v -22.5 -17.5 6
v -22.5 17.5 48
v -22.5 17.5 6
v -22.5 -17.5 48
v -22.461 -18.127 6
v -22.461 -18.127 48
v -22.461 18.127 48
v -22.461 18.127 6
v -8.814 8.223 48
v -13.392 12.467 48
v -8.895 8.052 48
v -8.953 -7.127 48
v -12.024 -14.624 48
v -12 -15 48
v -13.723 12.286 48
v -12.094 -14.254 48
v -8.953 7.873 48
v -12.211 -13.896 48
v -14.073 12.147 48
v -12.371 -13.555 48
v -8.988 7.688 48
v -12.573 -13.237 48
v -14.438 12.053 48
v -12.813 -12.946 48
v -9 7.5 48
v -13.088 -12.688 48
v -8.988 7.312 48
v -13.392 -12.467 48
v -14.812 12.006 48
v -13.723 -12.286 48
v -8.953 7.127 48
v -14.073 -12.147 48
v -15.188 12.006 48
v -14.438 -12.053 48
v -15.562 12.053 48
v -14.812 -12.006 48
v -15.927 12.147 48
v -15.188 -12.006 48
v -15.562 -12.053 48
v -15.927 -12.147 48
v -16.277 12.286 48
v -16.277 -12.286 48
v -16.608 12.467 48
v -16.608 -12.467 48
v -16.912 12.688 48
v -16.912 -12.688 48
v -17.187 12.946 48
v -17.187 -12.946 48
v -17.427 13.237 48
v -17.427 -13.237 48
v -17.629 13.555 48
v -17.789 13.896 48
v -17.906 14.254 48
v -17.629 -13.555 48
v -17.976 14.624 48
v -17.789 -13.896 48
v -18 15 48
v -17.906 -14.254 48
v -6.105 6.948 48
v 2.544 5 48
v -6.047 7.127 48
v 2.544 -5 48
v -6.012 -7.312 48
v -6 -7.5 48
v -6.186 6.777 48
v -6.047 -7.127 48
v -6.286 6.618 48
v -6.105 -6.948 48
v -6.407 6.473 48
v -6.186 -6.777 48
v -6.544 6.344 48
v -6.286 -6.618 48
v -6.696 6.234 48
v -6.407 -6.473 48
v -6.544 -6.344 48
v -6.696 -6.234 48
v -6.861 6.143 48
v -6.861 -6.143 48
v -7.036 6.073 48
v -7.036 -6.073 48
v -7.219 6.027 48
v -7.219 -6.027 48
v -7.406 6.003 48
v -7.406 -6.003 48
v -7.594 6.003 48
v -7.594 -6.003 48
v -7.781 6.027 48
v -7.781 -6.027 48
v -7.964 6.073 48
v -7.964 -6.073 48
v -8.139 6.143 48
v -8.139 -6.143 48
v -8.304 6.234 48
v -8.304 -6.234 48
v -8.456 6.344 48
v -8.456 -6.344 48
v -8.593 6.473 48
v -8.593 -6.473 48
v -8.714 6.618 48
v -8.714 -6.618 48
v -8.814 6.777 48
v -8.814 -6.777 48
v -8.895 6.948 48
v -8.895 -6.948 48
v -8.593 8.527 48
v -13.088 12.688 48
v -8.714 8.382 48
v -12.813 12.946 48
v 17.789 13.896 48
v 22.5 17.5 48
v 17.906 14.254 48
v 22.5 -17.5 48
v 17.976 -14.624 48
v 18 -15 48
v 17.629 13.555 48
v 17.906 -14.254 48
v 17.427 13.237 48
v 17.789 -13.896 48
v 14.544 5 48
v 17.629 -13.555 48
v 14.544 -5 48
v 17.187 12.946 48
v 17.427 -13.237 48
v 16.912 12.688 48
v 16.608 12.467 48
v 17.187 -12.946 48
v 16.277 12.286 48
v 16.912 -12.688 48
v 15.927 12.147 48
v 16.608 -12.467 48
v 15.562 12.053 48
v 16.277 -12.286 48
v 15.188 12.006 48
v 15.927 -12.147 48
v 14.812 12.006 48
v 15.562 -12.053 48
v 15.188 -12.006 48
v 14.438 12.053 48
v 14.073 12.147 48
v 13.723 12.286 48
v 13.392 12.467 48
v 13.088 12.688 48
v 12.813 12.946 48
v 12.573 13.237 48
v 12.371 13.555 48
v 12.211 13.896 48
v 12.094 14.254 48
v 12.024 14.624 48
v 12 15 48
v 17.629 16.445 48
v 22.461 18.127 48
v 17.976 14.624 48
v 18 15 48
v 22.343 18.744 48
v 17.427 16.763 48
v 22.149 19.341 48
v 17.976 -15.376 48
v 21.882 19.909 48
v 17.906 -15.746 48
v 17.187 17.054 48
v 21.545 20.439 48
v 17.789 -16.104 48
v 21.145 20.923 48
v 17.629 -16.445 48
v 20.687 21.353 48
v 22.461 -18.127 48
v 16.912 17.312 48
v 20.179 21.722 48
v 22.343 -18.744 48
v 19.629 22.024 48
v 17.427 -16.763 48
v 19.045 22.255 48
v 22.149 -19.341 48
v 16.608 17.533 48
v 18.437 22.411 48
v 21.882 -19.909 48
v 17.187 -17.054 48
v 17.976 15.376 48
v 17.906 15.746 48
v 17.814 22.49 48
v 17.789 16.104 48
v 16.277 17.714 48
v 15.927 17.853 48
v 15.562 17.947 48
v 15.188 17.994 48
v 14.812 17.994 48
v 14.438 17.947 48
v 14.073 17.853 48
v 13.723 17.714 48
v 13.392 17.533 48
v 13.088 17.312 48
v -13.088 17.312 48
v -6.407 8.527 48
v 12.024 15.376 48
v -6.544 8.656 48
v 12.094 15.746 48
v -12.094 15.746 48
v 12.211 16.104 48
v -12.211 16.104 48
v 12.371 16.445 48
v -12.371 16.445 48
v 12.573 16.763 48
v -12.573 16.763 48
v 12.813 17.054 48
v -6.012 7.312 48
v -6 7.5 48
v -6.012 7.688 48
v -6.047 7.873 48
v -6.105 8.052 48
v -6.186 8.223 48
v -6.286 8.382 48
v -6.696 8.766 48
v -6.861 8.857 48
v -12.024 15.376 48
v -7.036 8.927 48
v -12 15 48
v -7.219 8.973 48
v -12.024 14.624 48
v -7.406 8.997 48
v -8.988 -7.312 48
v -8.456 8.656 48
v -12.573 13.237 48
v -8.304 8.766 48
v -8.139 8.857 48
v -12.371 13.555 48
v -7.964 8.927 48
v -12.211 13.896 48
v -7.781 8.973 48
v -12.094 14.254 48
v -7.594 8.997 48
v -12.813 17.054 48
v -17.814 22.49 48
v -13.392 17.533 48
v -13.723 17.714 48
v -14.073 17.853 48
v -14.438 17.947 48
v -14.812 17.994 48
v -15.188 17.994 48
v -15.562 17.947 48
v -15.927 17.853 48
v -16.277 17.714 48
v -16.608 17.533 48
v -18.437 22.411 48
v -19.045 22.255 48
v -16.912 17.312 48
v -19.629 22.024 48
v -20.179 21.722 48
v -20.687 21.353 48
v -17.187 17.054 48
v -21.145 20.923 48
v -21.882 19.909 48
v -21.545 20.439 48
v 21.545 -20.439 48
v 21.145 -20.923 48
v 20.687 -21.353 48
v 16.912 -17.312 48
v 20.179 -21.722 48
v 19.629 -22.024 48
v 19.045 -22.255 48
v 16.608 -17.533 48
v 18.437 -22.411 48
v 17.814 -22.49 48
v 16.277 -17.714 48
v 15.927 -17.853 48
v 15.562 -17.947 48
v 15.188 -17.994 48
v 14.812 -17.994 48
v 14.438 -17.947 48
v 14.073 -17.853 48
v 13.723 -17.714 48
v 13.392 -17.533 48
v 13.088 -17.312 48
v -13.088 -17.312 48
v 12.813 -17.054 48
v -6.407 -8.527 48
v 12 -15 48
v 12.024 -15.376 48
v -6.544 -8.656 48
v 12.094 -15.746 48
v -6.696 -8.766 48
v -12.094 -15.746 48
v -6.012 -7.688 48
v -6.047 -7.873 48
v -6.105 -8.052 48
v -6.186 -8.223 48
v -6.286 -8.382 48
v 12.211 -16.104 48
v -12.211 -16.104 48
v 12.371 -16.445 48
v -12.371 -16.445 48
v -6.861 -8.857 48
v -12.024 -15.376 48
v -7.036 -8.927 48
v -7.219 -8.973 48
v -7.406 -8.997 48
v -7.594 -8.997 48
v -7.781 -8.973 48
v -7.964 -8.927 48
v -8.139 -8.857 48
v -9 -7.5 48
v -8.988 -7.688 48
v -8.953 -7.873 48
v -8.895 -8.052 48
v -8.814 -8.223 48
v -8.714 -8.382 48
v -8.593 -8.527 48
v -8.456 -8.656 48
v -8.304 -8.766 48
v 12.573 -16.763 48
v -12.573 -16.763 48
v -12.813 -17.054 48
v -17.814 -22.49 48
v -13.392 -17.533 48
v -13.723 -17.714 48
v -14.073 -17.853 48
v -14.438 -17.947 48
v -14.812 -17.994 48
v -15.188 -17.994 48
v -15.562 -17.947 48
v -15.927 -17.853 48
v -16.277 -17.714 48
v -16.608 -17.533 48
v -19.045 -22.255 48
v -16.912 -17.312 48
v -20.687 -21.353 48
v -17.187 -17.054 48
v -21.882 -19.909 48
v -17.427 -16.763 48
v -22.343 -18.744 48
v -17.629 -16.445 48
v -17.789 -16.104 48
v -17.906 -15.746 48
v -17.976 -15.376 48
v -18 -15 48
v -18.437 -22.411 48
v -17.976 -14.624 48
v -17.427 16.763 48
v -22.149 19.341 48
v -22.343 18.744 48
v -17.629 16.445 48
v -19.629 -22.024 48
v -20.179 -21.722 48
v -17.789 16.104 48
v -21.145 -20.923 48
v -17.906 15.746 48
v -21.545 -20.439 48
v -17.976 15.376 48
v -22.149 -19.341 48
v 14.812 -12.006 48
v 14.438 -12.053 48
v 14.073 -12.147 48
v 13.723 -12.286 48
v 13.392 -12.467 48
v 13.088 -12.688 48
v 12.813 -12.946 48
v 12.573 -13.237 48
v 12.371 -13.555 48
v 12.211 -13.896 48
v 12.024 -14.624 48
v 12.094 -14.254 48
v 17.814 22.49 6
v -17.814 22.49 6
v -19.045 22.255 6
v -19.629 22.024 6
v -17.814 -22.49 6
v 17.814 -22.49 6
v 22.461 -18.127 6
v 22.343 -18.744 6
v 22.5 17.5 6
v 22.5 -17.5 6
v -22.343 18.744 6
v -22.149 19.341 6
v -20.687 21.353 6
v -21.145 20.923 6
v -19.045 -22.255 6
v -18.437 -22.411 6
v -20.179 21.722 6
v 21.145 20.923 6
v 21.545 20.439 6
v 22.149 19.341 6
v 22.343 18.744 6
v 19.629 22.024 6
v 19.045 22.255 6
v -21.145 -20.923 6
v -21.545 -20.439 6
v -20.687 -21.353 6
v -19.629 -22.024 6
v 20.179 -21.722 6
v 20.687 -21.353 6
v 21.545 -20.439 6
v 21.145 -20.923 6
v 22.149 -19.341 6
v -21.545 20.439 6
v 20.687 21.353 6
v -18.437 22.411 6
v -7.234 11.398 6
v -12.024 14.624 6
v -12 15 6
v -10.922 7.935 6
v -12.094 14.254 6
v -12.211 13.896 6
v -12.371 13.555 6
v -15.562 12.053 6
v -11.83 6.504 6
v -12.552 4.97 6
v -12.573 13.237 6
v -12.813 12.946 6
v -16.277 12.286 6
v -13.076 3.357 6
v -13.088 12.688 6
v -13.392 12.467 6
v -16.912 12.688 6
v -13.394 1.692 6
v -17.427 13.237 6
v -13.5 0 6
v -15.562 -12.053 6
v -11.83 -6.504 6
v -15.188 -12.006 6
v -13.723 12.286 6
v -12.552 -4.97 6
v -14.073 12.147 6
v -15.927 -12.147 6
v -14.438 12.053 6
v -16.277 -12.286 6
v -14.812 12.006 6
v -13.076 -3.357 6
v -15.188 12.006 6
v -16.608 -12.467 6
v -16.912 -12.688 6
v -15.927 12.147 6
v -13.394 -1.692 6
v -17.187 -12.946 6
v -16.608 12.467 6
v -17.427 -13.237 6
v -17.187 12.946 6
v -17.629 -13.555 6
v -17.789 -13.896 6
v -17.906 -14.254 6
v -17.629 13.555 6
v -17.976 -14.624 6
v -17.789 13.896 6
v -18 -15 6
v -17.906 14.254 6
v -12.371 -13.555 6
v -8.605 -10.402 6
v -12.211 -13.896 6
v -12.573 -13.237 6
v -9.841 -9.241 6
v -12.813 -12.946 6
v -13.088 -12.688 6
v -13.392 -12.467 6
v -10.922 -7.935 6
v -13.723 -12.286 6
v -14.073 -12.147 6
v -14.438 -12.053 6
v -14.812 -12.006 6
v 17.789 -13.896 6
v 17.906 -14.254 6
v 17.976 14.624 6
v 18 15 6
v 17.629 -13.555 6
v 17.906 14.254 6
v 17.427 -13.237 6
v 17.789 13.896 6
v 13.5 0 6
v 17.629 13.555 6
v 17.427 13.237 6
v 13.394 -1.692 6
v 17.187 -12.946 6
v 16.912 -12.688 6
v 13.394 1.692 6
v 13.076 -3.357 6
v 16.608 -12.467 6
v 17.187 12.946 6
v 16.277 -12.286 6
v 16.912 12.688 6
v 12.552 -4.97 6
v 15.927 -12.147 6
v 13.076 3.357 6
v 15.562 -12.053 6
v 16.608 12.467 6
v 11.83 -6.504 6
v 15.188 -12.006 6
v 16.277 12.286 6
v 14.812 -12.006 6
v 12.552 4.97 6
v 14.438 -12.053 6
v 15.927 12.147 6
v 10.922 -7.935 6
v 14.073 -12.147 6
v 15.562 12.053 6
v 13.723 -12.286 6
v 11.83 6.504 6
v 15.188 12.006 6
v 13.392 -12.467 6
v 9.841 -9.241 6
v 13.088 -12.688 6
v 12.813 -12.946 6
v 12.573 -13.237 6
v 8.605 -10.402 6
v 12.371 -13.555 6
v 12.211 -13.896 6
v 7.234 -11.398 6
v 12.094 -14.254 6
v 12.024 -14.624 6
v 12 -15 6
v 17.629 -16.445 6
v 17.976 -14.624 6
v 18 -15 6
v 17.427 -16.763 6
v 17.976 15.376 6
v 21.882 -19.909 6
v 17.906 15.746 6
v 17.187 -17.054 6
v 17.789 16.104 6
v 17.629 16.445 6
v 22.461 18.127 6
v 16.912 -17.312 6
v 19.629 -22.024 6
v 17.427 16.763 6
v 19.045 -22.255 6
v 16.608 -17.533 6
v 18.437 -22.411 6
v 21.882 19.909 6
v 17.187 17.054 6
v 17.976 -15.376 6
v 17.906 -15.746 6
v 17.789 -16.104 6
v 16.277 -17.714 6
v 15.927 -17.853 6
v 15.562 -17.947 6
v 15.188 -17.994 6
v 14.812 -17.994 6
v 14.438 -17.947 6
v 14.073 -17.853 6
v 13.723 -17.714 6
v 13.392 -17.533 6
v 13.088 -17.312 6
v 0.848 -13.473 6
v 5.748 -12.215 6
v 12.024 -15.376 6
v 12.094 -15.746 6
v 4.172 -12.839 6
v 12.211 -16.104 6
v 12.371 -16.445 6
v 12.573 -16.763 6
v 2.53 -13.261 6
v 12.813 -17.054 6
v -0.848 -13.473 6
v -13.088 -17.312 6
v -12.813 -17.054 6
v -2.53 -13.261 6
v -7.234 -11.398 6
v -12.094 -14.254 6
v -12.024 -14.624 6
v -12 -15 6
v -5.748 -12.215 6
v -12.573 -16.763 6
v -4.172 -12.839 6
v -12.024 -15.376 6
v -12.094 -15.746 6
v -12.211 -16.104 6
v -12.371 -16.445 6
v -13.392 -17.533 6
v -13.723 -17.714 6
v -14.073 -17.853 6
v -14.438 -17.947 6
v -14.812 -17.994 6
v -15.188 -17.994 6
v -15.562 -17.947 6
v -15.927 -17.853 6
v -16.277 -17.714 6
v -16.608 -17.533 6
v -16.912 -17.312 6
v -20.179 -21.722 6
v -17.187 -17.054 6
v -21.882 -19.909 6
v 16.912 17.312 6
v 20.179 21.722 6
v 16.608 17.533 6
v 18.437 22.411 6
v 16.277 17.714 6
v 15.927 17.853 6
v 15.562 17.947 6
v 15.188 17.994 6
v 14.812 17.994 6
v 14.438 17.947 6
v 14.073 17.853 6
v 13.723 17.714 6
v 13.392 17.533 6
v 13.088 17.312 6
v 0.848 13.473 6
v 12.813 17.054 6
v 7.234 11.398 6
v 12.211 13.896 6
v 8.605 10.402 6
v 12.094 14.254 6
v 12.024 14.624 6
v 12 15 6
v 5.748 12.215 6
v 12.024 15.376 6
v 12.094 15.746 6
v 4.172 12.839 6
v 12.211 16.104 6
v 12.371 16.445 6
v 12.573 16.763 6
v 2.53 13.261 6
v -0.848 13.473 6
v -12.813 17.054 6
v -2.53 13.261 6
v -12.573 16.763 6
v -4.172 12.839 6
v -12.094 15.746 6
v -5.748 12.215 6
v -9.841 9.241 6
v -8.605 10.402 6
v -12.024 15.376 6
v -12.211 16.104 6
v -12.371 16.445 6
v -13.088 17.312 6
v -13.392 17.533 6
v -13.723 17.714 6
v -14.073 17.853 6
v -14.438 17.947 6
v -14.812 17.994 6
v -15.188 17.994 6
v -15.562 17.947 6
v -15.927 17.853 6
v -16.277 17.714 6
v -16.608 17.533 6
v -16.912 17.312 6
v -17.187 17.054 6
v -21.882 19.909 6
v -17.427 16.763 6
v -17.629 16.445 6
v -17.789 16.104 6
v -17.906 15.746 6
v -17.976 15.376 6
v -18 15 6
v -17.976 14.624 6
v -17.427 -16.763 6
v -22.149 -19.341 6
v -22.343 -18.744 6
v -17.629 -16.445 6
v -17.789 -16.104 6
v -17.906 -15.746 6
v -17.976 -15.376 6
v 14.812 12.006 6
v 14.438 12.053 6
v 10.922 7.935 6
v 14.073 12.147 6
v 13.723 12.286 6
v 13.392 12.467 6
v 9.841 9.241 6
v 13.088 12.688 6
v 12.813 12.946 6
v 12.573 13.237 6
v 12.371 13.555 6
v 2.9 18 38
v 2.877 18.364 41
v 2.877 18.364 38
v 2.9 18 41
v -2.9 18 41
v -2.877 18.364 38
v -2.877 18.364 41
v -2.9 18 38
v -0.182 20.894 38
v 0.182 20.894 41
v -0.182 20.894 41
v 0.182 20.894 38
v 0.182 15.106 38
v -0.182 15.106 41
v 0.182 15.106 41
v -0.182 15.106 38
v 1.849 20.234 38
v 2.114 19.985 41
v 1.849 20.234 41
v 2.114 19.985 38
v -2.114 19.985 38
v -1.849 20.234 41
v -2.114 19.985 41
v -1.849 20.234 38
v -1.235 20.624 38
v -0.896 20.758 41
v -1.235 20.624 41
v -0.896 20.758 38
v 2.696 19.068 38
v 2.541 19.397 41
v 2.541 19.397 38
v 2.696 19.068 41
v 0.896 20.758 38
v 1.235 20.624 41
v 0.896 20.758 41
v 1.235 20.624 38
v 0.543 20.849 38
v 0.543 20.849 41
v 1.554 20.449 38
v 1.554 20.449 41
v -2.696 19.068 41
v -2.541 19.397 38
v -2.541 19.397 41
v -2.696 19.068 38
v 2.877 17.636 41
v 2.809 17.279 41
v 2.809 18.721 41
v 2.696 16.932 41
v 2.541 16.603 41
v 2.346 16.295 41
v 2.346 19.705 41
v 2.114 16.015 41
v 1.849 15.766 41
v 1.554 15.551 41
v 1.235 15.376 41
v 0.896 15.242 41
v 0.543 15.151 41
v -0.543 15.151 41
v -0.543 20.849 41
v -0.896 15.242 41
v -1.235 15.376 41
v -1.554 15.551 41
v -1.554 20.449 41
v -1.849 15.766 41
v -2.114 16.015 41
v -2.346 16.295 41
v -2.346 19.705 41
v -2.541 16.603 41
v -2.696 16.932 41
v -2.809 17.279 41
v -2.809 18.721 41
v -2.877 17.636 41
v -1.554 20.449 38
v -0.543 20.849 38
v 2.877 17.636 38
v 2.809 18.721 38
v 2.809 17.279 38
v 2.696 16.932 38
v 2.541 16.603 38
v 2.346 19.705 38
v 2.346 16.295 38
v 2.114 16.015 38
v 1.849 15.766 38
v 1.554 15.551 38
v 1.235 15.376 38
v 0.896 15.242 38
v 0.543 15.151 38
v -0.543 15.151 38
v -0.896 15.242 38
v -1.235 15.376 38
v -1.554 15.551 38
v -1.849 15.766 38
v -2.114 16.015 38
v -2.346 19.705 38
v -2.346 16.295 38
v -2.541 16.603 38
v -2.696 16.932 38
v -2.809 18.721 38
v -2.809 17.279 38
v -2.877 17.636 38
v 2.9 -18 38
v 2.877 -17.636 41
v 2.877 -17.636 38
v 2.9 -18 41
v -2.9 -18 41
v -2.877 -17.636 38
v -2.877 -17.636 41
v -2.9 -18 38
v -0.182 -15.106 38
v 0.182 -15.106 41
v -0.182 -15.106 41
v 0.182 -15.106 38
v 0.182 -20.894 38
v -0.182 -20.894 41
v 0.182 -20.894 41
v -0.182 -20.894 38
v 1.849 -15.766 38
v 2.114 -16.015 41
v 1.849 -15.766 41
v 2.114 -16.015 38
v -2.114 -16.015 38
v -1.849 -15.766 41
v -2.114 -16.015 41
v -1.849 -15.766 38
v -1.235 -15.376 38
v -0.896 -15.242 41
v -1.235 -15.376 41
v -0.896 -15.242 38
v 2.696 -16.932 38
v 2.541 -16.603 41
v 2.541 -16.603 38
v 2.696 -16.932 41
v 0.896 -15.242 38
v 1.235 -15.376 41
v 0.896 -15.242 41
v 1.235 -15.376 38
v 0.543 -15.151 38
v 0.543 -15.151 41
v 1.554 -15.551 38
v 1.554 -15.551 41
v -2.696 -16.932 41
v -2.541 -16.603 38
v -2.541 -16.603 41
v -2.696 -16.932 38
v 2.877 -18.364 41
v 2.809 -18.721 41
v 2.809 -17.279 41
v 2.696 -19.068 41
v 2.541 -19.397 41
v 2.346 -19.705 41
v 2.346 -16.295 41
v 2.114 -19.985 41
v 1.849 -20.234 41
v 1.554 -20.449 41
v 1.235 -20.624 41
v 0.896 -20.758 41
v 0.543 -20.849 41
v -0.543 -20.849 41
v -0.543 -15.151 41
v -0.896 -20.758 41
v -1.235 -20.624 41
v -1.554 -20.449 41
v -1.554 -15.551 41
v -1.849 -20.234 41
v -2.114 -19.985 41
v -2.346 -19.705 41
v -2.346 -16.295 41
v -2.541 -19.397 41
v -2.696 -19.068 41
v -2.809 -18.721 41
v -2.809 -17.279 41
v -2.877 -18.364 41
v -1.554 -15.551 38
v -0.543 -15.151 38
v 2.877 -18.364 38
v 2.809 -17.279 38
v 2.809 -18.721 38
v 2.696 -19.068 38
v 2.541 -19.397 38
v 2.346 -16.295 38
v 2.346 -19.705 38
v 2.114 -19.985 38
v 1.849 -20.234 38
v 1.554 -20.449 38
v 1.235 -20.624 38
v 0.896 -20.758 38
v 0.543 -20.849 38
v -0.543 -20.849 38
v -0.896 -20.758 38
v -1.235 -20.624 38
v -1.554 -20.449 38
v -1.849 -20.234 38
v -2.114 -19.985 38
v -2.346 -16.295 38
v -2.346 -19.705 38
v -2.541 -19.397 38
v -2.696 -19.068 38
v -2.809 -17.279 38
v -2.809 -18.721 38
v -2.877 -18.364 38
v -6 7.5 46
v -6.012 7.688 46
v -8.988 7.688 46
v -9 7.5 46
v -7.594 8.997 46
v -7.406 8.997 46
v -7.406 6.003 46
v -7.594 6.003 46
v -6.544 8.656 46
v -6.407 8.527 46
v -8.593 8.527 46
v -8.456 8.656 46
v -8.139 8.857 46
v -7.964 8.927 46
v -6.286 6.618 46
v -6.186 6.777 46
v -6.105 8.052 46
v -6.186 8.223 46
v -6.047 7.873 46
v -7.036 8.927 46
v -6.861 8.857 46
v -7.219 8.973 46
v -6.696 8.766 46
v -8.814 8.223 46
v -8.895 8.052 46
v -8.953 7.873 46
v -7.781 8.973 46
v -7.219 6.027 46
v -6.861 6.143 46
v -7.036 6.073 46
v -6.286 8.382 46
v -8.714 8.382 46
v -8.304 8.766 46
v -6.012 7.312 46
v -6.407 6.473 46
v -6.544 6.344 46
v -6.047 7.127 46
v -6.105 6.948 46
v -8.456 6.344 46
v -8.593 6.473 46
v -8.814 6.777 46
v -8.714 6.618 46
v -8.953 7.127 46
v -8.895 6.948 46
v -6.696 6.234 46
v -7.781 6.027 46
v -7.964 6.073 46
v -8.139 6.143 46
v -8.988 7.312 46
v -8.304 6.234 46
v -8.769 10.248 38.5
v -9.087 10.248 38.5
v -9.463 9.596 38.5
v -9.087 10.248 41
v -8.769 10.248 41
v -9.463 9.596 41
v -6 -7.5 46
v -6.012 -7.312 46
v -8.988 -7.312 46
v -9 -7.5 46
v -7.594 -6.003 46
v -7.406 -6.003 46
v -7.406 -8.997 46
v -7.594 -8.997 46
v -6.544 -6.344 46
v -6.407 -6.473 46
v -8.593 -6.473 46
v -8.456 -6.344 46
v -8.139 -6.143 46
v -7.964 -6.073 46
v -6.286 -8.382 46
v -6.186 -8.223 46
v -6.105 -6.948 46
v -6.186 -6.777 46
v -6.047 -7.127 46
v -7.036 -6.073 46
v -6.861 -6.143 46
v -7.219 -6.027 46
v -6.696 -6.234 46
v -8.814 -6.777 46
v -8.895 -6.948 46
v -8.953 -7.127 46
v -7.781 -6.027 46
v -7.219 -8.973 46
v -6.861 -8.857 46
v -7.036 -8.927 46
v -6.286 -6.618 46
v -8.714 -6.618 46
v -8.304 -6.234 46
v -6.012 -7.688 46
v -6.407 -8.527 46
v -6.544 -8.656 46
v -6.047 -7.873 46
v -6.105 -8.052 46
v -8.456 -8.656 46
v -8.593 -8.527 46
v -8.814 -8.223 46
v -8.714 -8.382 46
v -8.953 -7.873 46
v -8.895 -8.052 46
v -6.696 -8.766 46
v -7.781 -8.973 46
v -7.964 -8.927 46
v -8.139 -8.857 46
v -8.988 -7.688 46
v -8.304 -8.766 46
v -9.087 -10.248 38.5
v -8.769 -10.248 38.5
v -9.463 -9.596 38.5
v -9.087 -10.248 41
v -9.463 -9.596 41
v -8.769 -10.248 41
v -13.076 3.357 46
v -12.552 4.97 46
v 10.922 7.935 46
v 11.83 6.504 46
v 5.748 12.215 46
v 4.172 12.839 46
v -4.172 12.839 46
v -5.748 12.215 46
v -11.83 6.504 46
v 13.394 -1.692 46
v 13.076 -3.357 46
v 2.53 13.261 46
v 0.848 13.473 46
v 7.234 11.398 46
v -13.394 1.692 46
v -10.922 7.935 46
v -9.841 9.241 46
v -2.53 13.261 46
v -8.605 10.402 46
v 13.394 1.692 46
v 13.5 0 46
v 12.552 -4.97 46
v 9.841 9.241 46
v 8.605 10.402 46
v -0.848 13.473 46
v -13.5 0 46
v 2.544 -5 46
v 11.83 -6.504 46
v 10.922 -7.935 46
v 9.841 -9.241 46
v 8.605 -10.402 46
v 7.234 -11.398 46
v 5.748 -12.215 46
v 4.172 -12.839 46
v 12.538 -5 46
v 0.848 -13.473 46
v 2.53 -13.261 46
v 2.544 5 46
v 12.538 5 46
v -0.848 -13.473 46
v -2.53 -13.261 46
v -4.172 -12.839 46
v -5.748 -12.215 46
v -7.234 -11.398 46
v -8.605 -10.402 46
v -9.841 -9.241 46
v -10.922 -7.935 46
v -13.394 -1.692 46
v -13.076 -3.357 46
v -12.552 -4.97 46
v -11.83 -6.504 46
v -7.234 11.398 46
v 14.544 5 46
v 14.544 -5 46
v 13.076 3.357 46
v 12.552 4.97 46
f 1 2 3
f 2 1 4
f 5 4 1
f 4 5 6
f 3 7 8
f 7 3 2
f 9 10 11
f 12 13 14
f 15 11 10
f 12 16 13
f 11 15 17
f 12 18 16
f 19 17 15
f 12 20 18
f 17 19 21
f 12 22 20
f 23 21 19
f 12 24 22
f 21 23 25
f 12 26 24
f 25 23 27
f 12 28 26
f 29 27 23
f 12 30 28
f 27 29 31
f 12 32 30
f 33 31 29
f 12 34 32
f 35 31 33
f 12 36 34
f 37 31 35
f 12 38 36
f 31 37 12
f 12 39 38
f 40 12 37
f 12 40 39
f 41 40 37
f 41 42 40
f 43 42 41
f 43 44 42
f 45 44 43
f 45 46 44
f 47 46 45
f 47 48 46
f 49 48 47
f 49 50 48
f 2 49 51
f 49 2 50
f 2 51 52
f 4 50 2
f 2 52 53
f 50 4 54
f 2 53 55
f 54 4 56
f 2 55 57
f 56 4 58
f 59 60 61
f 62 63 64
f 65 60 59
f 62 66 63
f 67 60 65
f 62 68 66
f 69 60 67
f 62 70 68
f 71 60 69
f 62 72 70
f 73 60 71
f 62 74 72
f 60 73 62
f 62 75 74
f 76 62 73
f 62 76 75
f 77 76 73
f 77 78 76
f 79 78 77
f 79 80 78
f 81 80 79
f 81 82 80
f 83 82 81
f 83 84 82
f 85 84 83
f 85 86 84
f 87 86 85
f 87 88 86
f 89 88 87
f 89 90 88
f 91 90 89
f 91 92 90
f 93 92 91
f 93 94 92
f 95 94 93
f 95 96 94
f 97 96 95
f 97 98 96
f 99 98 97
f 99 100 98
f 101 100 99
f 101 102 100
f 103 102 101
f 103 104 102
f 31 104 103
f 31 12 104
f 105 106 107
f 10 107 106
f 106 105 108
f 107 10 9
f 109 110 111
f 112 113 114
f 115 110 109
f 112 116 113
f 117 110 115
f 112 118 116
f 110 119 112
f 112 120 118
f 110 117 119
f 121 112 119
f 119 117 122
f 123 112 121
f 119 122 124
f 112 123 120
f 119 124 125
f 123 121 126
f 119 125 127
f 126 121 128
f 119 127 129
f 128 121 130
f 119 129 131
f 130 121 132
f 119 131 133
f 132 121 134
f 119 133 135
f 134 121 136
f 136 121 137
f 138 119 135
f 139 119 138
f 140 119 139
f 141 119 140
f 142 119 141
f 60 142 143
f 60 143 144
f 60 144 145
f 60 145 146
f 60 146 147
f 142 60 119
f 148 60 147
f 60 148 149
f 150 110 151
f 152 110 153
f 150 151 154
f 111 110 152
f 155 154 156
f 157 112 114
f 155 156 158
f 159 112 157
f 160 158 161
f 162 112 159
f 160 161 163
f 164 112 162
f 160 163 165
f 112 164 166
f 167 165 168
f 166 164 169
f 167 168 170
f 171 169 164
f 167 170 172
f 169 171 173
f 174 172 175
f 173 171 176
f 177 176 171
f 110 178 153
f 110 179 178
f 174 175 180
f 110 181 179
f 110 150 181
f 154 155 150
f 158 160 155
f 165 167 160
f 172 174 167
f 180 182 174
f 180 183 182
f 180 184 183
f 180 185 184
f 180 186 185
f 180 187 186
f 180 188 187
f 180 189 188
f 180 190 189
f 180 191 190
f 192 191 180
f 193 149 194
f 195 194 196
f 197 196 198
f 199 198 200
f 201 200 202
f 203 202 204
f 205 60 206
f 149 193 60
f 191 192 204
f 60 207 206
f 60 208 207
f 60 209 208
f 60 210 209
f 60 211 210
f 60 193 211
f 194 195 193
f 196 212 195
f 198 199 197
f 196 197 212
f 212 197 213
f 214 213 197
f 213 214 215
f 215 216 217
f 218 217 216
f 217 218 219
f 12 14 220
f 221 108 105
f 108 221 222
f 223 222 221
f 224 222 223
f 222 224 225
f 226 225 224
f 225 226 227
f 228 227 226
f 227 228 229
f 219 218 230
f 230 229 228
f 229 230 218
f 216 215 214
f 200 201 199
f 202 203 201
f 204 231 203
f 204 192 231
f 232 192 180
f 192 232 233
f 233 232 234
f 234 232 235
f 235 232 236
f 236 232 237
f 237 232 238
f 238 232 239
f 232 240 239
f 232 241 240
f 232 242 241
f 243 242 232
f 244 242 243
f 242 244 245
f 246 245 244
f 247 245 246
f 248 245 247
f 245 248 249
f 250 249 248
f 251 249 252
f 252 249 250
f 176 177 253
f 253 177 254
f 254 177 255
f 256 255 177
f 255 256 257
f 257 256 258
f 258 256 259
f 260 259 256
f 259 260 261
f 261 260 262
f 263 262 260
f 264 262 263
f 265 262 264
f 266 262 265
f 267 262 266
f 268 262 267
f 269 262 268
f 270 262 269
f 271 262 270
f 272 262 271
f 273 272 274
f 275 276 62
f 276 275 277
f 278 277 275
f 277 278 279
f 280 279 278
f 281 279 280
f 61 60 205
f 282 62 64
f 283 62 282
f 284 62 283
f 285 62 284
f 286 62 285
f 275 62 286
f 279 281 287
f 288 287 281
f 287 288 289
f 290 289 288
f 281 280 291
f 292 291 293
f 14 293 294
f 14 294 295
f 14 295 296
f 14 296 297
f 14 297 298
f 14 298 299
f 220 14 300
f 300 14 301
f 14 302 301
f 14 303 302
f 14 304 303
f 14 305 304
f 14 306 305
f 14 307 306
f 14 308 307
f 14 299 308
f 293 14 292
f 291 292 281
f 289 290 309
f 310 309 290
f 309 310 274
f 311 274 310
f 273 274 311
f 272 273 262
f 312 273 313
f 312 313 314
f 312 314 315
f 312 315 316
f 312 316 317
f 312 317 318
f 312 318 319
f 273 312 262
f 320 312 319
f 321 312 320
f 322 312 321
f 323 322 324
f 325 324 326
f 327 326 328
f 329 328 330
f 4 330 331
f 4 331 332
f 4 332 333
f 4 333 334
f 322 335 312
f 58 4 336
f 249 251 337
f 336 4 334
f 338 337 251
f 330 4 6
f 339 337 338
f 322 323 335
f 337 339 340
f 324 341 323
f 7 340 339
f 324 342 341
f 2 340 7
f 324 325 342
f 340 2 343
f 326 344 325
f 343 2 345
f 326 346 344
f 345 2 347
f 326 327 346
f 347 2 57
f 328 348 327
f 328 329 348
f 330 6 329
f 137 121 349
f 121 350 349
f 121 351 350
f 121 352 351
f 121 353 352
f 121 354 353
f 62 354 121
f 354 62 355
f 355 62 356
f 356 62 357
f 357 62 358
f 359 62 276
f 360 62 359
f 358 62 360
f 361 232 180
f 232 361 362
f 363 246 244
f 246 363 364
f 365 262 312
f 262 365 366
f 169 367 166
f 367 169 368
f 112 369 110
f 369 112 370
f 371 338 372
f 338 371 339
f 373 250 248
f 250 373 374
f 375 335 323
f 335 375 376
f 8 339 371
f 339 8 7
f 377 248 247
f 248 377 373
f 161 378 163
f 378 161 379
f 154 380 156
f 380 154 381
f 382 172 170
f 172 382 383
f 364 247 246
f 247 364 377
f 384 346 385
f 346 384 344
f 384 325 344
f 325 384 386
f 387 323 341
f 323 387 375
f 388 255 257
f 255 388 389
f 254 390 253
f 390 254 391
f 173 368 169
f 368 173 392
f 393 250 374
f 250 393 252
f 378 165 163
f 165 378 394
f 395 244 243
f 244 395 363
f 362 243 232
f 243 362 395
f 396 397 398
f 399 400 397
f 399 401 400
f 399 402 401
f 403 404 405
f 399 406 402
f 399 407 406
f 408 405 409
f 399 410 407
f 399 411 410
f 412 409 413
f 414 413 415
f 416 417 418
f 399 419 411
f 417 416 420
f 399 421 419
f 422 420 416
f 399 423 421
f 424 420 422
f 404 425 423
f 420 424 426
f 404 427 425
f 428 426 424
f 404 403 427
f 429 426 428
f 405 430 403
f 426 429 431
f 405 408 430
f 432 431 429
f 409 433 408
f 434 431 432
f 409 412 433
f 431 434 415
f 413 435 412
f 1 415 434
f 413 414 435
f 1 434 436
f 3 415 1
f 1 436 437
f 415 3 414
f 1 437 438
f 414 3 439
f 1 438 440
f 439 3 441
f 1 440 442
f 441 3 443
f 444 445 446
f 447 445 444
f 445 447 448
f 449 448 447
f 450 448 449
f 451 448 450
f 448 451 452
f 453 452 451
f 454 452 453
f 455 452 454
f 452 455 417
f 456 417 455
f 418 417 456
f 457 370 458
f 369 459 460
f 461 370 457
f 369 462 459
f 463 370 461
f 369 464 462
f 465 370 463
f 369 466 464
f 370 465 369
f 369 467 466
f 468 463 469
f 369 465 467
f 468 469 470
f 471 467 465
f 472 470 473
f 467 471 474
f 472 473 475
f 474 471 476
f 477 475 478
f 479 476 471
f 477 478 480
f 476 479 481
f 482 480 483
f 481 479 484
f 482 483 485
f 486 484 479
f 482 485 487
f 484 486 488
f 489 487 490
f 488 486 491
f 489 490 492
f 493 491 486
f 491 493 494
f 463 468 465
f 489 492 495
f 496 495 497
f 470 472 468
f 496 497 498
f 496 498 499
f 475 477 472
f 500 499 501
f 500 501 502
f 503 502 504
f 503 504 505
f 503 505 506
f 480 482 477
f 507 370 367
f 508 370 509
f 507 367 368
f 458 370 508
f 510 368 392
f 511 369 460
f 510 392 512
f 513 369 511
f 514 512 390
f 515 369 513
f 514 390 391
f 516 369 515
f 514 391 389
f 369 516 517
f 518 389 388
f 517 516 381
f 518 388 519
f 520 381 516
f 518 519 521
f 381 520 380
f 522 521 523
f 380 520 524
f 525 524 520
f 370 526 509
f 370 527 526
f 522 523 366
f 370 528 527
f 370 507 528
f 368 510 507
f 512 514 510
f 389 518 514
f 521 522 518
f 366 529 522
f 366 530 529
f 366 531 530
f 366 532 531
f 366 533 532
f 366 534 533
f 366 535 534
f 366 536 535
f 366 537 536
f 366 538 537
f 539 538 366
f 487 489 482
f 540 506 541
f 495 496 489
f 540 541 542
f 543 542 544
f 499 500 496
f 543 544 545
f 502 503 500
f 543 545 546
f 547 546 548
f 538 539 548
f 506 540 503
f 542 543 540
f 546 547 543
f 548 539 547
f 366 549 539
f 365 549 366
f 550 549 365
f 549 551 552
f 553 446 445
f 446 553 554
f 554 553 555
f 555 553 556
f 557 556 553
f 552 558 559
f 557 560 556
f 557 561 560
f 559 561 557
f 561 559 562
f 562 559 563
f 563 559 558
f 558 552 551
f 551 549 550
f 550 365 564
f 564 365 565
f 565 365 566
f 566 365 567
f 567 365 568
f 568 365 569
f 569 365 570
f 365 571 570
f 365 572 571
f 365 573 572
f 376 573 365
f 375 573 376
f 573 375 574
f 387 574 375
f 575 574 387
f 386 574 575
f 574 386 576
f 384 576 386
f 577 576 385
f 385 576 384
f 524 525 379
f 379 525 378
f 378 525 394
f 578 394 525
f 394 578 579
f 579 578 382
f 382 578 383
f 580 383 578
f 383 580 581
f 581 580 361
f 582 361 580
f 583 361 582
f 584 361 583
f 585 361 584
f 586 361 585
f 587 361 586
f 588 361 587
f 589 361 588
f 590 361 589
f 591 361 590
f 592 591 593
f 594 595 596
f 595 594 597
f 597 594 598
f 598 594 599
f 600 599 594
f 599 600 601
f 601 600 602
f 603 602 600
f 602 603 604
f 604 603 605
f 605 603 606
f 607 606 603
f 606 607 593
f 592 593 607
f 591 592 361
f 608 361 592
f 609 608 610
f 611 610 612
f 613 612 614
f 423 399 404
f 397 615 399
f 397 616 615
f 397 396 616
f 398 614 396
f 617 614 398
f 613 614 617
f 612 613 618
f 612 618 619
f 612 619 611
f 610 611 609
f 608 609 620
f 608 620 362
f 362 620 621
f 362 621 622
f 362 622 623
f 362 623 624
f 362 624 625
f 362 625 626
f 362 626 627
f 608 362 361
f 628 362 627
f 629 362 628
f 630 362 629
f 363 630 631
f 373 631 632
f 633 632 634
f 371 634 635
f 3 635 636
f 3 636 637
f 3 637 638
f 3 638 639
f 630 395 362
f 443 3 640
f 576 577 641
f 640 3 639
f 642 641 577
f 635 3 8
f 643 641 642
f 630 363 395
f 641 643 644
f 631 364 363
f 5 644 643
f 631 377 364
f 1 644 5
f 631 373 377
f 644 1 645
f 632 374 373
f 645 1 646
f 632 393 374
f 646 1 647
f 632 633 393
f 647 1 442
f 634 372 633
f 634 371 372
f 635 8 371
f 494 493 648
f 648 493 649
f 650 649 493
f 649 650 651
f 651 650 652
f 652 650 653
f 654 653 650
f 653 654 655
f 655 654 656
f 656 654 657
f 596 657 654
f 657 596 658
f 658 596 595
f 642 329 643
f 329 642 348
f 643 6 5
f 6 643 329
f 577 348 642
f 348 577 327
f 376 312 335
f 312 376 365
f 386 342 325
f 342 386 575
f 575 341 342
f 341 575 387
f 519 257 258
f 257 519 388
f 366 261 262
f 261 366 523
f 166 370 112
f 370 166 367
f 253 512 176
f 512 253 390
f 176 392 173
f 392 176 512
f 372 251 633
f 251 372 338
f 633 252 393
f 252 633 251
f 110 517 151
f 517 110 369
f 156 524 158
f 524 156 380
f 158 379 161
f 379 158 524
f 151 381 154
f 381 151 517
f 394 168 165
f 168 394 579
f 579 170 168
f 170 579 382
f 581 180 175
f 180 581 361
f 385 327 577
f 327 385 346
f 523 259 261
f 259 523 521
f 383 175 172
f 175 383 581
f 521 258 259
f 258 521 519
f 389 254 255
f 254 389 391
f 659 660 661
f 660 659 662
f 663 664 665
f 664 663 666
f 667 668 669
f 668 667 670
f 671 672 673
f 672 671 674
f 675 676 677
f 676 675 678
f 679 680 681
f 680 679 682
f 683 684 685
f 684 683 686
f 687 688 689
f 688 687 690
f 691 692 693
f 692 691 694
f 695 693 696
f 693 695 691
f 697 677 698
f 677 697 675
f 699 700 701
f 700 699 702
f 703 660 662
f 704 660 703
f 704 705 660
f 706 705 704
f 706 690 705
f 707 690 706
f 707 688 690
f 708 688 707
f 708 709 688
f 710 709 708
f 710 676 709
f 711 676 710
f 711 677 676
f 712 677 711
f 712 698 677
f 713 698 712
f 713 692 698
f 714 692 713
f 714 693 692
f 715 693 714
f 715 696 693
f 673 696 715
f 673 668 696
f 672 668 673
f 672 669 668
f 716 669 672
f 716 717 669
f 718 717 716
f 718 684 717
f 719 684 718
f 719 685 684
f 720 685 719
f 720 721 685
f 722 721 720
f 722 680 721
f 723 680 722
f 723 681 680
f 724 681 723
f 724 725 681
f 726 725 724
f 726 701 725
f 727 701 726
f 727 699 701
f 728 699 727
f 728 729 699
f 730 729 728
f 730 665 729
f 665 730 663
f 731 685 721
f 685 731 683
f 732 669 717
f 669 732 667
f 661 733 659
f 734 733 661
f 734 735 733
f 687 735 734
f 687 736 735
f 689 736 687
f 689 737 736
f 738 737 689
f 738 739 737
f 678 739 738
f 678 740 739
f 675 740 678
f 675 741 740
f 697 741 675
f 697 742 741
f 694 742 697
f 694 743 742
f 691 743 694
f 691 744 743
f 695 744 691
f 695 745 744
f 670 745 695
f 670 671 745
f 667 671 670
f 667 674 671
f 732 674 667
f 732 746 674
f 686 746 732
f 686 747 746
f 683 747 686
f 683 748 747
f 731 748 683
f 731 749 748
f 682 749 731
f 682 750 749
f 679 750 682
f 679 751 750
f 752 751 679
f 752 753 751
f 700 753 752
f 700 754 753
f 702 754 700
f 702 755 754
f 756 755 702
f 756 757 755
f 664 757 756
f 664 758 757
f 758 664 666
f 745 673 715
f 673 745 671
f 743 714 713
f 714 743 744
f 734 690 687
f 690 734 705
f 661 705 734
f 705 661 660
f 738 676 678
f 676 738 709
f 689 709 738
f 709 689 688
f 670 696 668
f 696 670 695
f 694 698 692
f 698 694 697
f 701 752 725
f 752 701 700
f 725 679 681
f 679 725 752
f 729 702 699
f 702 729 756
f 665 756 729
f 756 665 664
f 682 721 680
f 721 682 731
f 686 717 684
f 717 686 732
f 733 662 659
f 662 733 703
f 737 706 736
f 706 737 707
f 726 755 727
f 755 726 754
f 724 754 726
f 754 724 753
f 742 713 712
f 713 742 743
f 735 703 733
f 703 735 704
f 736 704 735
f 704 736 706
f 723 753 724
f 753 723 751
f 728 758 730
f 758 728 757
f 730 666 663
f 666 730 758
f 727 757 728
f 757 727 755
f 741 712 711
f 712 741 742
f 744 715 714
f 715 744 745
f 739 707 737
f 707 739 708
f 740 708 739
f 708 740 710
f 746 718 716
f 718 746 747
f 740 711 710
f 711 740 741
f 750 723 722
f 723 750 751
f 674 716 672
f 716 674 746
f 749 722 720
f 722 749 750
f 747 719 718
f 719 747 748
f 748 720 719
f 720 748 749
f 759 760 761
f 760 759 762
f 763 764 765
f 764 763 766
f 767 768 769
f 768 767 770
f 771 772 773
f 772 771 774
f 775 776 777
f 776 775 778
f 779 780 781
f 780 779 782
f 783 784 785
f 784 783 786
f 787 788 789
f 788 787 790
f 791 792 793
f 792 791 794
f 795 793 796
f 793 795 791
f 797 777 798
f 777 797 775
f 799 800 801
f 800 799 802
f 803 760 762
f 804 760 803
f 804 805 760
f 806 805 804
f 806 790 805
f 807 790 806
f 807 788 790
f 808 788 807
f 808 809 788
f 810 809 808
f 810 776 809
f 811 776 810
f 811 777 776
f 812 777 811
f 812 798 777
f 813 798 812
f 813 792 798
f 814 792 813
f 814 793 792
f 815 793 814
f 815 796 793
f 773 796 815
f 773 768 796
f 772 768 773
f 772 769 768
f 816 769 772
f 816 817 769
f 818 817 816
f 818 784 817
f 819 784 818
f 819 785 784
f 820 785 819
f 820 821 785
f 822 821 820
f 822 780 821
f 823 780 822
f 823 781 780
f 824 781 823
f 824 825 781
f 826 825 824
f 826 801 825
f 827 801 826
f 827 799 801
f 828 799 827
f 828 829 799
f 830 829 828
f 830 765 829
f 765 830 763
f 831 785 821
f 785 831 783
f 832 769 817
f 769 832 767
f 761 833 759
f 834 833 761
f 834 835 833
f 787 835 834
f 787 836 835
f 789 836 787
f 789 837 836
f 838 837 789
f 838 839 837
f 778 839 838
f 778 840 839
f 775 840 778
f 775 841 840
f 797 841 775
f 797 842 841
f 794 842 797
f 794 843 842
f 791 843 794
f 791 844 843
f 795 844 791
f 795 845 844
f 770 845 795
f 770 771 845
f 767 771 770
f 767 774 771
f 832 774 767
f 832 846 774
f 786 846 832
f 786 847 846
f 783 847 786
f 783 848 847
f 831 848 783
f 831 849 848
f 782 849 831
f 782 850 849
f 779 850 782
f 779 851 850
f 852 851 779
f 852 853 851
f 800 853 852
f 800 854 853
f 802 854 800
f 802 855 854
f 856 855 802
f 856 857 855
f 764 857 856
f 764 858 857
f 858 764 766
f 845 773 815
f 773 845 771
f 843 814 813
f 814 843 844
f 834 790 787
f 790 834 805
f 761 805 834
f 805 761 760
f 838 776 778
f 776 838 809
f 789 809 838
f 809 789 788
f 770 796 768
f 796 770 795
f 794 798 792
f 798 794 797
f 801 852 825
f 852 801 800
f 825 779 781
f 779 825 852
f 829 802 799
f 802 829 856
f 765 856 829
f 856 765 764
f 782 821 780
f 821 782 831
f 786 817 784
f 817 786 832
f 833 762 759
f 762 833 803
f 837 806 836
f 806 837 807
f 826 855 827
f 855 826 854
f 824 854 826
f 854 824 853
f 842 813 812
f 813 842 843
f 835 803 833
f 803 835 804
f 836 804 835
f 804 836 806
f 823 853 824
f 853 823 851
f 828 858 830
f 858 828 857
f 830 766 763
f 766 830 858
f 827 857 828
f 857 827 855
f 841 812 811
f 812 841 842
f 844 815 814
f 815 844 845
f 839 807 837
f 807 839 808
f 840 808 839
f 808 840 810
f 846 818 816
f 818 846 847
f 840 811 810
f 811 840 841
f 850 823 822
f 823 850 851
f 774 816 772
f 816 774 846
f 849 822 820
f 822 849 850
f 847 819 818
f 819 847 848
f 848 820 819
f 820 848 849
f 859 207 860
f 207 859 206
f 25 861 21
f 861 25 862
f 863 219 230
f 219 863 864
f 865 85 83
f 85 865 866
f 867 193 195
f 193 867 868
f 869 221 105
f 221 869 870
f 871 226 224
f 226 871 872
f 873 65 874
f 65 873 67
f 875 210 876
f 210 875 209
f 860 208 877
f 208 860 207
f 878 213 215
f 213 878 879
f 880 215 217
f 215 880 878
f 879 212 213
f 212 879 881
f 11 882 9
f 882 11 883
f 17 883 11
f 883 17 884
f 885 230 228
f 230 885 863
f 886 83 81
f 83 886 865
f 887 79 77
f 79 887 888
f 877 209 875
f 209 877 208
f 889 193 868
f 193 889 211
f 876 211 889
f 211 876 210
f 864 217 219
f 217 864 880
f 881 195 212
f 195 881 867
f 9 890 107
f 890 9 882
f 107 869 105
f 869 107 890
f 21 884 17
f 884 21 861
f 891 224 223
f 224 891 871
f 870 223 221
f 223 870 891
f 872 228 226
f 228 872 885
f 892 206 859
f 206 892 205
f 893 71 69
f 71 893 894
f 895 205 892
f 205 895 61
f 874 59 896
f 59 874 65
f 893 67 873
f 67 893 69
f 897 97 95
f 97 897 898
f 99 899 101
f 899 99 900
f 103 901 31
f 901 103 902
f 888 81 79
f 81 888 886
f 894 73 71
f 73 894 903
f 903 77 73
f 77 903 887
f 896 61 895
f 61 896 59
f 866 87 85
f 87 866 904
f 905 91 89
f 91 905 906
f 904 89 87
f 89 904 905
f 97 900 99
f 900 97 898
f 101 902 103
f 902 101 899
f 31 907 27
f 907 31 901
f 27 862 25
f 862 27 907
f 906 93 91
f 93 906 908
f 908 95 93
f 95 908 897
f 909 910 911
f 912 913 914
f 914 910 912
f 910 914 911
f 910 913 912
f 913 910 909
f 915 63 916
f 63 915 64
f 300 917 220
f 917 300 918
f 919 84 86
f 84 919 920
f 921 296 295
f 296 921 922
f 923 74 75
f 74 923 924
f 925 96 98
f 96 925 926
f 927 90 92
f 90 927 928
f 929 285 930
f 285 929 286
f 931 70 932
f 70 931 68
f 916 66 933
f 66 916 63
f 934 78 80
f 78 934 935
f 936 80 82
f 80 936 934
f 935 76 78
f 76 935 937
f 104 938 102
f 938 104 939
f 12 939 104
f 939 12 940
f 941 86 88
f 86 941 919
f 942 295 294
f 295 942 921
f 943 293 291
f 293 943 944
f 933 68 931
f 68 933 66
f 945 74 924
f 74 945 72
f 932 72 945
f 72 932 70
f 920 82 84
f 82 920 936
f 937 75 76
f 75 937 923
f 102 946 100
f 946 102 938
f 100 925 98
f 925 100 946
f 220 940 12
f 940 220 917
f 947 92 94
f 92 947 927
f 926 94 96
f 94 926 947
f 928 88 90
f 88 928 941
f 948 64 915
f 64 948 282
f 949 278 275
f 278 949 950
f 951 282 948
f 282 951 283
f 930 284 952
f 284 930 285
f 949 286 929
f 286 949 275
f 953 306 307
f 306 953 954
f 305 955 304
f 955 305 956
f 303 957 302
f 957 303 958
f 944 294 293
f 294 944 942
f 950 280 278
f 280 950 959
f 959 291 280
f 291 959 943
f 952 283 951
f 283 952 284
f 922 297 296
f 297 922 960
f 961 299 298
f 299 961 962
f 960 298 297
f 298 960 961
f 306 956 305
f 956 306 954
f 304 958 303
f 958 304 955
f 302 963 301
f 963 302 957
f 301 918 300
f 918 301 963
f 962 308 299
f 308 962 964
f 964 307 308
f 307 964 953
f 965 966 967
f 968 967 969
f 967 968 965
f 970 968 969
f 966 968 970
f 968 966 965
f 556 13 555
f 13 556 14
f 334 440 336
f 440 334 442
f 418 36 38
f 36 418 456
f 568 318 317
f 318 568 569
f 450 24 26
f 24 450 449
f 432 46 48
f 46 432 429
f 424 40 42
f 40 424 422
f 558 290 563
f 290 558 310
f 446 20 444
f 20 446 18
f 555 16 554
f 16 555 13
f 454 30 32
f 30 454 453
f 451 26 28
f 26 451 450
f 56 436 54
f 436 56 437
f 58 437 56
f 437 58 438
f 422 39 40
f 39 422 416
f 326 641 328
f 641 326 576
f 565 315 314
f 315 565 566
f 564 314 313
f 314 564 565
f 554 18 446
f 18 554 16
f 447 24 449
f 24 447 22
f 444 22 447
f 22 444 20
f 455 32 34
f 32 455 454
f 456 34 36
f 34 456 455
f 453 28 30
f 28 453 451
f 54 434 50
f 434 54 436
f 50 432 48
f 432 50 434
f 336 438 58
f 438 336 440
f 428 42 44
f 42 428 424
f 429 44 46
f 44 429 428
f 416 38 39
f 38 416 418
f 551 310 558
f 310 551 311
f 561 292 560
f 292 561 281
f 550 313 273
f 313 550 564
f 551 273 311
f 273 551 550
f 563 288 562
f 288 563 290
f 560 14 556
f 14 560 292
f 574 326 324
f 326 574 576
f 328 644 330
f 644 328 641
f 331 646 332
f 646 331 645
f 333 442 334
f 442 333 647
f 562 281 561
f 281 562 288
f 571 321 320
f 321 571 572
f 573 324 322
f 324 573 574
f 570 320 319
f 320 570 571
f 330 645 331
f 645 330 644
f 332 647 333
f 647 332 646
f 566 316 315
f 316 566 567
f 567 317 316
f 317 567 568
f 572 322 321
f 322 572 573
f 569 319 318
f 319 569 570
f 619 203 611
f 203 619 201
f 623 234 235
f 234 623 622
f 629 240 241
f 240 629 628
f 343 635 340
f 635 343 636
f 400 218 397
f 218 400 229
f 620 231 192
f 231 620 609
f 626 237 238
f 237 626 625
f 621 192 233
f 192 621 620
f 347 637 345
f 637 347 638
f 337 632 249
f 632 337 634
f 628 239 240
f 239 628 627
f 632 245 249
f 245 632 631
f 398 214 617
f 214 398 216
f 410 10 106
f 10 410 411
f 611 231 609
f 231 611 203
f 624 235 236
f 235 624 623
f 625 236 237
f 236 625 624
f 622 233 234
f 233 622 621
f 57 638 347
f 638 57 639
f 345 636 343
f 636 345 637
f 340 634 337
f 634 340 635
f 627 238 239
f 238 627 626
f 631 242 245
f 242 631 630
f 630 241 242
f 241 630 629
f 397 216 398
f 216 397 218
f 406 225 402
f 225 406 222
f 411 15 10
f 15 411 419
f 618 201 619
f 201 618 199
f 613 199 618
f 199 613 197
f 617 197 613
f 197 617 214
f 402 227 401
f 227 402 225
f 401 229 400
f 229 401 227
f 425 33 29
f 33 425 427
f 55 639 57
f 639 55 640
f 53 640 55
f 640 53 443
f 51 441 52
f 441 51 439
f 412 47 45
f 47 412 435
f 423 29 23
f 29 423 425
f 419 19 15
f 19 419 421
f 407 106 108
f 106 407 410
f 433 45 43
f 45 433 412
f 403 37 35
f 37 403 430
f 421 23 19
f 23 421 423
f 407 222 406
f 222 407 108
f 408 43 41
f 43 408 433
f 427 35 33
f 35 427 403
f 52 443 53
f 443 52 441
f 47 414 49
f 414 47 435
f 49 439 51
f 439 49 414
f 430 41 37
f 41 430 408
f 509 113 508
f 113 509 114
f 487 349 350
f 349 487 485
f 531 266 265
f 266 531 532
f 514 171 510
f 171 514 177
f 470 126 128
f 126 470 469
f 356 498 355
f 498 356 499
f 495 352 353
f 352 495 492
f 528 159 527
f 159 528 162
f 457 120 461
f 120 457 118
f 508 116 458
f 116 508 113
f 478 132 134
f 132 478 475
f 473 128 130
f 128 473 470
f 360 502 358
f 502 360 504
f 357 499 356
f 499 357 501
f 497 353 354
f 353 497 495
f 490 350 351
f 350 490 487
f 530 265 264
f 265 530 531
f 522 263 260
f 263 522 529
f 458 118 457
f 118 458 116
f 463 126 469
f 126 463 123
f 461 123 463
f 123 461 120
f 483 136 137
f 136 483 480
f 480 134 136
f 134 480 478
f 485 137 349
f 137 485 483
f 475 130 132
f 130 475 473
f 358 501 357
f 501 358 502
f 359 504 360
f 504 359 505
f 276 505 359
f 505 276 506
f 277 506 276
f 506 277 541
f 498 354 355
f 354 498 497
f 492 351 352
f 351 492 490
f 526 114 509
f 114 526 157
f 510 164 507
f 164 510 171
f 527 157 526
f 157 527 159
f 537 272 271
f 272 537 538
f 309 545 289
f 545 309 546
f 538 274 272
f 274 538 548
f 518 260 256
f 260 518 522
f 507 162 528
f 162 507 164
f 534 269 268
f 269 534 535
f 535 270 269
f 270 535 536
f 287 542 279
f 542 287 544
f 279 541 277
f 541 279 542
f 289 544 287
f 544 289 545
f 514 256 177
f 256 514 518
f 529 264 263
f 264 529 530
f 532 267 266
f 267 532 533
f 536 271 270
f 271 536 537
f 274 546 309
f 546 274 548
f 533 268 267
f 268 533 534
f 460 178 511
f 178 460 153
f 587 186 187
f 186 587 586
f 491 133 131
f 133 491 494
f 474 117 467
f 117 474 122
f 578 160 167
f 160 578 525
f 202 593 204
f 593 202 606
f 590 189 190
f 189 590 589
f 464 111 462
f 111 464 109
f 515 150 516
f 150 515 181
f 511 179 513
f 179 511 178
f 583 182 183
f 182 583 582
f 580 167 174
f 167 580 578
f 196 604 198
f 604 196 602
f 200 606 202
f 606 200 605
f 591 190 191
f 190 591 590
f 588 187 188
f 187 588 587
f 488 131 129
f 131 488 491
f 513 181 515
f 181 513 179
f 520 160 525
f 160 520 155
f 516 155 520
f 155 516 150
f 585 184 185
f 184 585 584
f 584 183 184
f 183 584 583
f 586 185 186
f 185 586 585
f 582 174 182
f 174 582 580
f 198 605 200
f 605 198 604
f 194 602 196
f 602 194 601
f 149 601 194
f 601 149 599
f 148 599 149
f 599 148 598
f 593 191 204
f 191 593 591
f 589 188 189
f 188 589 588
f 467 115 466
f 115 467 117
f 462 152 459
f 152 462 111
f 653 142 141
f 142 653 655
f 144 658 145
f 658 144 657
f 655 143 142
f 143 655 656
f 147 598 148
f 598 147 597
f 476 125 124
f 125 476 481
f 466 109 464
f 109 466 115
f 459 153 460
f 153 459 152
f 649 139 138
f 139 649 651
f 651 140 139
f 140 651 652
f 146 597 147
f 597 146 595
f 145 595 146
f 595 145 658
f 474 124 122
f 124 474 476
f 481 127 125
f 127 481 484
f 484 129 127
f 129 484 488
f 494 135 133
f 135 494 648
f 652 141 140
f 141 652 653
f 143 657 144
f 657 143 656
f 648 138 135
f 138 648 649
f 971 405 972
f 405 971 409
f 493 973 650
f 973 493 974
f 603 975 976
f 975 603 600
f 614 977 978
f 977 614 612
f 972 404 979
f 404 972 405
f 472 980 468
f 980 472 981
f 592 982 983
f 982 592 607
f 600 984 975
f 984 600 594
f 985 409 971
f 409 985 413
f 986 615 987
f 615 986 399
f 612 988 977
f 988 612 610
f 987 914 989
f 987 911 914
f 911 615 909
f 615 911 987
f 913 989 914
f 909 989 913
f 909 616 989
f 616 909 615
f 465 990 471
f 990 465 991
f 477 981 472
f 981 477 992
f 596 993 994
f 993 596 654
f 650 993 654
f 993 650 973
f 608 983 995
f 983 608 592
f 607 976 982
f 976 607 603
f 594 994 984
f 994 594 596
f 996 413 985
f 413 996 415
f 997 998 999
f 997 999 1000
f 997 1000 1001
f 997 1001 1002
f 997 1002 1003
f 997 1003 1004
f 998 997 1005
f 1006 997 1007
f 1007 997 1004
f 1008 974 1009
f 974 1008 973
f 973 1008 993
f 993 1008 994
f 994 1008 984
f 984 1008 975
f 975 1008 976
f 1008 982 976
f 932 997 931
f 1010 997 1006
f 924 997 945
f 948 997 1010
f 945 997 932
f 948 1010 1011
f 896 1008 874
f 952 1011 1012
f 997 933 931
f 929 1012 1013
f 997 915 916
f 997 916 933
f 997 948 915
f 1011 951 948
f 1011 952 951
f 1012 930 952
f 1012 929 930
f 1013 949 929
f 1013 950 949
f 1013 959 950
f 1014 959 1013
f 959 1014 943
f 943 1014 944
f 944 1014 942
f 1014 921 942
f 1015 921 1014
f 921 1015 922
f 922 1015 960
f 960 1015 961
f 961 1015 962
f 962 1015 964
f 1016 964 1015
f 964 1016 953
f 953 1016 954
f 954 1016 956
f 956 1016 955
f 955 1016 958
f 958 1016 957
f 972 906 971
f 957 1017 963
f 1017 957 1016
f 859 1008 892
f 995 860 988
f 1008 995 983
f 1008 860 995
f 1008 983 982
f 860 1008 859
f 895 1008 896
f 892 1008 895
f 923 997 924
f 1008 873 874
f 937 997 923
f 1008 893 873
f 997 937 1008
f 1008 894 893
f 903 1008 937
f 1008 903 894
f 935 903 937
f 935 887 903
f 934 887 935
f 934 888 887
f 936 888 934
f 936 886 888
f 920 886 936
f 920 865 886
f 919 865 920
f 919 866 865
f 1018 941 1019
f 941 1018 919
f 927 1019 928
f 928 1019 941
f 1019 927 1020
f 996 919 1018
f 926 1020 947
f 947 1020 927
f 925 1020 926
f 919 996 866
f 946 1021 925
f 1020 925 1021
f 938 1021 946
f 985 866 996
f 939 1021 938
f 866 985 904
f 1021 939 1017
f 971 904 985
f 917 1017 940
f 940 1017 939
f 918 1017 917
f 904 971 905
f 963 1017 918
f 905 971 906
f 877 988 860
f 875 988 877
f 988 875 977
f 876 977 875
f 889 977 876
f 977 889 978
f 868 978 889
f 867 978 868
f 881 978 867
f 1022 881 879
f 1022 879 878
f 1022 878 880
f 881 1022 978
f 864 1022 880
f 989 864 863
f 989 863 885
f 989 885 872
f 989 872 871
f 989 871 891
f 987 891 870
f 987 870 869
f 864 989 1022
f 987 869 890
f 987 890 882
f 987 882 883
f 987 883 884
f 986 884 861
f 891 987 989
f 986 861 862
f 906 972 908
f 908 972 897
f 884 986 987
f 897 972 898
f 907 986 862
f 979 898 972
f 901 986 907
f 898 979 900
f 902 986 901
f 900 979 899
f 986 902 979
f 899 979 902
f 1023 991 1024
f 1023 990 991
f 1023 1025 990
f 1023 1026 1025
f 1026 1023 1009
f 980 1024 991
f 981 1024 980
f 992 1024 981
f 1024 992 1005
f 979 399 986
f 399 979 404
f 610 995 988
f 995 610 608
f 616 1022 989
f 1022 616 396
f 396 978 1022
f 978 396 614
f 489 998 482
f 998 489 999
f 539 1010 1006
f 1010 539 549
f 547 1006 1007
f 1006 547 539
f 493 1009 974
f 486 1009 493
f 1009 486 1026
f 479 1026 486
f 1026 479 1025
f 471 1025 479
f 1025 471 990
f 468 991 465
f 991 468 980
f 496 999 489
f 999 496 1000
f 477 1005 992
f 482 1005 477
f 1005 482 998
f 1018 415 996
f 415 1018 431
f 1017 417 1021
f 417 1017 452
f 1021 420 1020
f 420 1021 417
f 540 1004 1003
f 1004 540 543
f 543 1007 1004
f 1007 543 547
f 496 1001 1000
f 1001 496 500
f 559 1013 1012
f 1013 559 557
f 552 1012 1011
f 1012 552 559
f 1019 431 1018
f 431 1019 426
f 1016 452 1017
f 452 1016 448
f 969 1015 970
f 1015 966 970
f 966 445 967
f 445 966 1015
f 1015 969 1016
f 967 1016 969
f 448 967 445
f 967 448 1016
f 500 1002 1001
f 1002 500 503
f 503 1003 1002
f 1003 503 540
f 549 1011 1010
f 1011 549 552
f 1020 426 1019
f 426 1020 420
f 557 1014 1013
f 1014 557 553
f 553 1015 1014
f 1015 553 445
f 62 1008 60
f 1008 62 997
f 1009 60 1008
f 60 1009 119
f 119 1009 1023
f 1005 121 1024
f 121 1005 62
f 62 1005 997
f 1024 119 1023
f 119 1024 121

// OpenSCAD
$fn = 50;


difference() {
	union() {
		translate(v = [0, 0, 6]) {
			hull() {
				translate(v = [-17.5000000000, 17.5000000000, 0]) {
					cylinder(h = 42, r = 5);
				}
				translate(v = [17.5000000000, 17.5000000000, 0]) {
					cylinder(h = 42, r = 5);
				}
				translate(v = [-17.5000000000, -17.5000000000, 0]) {
					cylinder(h = 42, r = 5);
				}
				translate(v = [17.5000000000, -17.5000000000, 0]) {
					cylinder(h = 42, r = 5);
				}
			}
		}
		translate(v = [0, 0, 6]) {
			hull() {
				translate(v = [-17.5000000000, 17.5000000000, 0]) {
					cylinder(h = 42, r = 5);
				}
				translate(v = [17.5000000000, 17.5000000000, 0]) {
					cylinder(h = 42, r = 5);
				}
				translate(v = [-17.5000000000, -17.5000000000, 0]) {
					cylinder(h = 42, r = 5);
				}
				translate(v = [17.5000000000, -17.5000000000, 0]) {
					cylinder(h = 42, r = 5);
				}
			}
		}
	}
	union() {
		translate(v = [0, 18, 38]) {
			rotate(a = [0, 0, 0]) {
				difference() {
					union() {
						translate(v = [0, 0, -300.0000000000]) {
							cylinder(h = 100, r = 1.5000000000);
						}
						translate(v = [0, 0, -300.0000000000]) {
							cylinder(h = 100, r = 1.8000000000);
						}
						cylinder(h = 3, r = 2.9000000000);
						translate(v = [0, 0, -300.0000000000]) {
							cylinder(h = 100, r = 1.5000000000);
						}
					}
					union();
				}
			}
		}
		translate(v = [0, -18, 38]) {
			rotate(a = [0, 0, 0]) {
				difference() {
					union() {
						translate(v = [0, 0, -300.0000000000]) {
							cylinder(h = 100, r = 1.5000000000);
						}
						translate(v = [0, 0, -300.0000000000]) {
							cylinder(h = 100, r = 1.8000000000);
						}
						cylinder(h = 3, r = 2.9000000000);
						translate(v = [0, 0, -300.0000000000]) {
							cylinder(h = 100, r = 1.5000000000);
						}
					}
					union();
				}
			}
		}
		translate(v = [-7.5000000000, 7.5000000000, 41]) {
			rotate(a = [0, 0, 0]) {
				difference() {
					union() {
						translate(v = [0, 0, -50.0000000000]) {
							cylinder(h = 100, r = 1.5000000000);
						}
						translate(v = [0, 0, -50.0000000000]) {
							cylinder(h = 100, r = 1.5000000000);
						}
						translate(v = [0, 0, -2.5000000000]) {
							linear_extrude(height = 2.5000000000) {
								polygon(points = [[3.1735000000, 0.0000000000], [1.5867500000, 2.7483316189], [-1.5867500000, 2.7483316189], [-3.1735000000, 0.0000000000], [-1.5867500000, -2.7483316189], [1.5867500000, -2.7483316189]]);
							}
						}
						translate(v = [0, 0, -50.0000000000]) {
							cylinder(h = 100, r = 1.5000000000);
						}
					}
					union();
				}
			}
		}
		translate(v = [-7.5000000000, -7.5000000000, 41]) {
			rotate(a = [0, 0, 0]) {
				difference() {
					union() {
						translate(v = [0, 0, -50.0000000000]) {
							cylinder(h = 100, r = 1.5000000000);
						}
						translate(v = [0, 0, -50.0000000000]) {
							cylinder(h = 100, r = 1.5000000000);
						}
						translate(v = [0, 0, -2.5000000000]) {
							linear_extrude(height = 2.5000000000) {
								polygon(points = [[3.1735000000, 0.0000000000], [1.5867500000, 2.7483316189], [-1.5867500000, 2.7483316189], [-3.1735000000, 0.0000000000], [-1.5867500000, -2.7483316189], [1.5867500000, -2.7483316189]]);
							}
						}
						translate(v = [0, 0, -50.0000000000]) {
							cylinder(h = 100, r = 1.5000000000);
						}
					}
					union();
				}
			}
		}
		translate(v = [-15.0000000000, -15.0000000000, -50.0000000000]) {
			cylinder(h = 100, r = 3.0000000000);
		}
		translate(v = [-15.0000000000, 15.0000000000, -50.0000000000]) {
			cylinder(h = 100, r = 3.0000000000);
		}
		translate(v = [15.0000000000, -15.0000000000, -50.0000000000]) {
			cylinder(h = 100, r = 3.0000000000);
		}
		translate(v = [15.0000000000, 15.0000000000, -50.0000000000]) {
			cylinder(h = 100, r = 3.0000000000);
		}
		translate(v = [0, 0, -1.0000000000]) {
			cylinder(h = 47, r = 13.5000000000);
		}
		#translate(v = [2.5440000000, -5.0000000000, 46]) {
			cube(size = [7, 10, 10]);
		}
		#translate(v = [7.5440000000, -5.0000000000, 46]) {
			cube(size = [7, 10, 10]);
		}
	}
}
